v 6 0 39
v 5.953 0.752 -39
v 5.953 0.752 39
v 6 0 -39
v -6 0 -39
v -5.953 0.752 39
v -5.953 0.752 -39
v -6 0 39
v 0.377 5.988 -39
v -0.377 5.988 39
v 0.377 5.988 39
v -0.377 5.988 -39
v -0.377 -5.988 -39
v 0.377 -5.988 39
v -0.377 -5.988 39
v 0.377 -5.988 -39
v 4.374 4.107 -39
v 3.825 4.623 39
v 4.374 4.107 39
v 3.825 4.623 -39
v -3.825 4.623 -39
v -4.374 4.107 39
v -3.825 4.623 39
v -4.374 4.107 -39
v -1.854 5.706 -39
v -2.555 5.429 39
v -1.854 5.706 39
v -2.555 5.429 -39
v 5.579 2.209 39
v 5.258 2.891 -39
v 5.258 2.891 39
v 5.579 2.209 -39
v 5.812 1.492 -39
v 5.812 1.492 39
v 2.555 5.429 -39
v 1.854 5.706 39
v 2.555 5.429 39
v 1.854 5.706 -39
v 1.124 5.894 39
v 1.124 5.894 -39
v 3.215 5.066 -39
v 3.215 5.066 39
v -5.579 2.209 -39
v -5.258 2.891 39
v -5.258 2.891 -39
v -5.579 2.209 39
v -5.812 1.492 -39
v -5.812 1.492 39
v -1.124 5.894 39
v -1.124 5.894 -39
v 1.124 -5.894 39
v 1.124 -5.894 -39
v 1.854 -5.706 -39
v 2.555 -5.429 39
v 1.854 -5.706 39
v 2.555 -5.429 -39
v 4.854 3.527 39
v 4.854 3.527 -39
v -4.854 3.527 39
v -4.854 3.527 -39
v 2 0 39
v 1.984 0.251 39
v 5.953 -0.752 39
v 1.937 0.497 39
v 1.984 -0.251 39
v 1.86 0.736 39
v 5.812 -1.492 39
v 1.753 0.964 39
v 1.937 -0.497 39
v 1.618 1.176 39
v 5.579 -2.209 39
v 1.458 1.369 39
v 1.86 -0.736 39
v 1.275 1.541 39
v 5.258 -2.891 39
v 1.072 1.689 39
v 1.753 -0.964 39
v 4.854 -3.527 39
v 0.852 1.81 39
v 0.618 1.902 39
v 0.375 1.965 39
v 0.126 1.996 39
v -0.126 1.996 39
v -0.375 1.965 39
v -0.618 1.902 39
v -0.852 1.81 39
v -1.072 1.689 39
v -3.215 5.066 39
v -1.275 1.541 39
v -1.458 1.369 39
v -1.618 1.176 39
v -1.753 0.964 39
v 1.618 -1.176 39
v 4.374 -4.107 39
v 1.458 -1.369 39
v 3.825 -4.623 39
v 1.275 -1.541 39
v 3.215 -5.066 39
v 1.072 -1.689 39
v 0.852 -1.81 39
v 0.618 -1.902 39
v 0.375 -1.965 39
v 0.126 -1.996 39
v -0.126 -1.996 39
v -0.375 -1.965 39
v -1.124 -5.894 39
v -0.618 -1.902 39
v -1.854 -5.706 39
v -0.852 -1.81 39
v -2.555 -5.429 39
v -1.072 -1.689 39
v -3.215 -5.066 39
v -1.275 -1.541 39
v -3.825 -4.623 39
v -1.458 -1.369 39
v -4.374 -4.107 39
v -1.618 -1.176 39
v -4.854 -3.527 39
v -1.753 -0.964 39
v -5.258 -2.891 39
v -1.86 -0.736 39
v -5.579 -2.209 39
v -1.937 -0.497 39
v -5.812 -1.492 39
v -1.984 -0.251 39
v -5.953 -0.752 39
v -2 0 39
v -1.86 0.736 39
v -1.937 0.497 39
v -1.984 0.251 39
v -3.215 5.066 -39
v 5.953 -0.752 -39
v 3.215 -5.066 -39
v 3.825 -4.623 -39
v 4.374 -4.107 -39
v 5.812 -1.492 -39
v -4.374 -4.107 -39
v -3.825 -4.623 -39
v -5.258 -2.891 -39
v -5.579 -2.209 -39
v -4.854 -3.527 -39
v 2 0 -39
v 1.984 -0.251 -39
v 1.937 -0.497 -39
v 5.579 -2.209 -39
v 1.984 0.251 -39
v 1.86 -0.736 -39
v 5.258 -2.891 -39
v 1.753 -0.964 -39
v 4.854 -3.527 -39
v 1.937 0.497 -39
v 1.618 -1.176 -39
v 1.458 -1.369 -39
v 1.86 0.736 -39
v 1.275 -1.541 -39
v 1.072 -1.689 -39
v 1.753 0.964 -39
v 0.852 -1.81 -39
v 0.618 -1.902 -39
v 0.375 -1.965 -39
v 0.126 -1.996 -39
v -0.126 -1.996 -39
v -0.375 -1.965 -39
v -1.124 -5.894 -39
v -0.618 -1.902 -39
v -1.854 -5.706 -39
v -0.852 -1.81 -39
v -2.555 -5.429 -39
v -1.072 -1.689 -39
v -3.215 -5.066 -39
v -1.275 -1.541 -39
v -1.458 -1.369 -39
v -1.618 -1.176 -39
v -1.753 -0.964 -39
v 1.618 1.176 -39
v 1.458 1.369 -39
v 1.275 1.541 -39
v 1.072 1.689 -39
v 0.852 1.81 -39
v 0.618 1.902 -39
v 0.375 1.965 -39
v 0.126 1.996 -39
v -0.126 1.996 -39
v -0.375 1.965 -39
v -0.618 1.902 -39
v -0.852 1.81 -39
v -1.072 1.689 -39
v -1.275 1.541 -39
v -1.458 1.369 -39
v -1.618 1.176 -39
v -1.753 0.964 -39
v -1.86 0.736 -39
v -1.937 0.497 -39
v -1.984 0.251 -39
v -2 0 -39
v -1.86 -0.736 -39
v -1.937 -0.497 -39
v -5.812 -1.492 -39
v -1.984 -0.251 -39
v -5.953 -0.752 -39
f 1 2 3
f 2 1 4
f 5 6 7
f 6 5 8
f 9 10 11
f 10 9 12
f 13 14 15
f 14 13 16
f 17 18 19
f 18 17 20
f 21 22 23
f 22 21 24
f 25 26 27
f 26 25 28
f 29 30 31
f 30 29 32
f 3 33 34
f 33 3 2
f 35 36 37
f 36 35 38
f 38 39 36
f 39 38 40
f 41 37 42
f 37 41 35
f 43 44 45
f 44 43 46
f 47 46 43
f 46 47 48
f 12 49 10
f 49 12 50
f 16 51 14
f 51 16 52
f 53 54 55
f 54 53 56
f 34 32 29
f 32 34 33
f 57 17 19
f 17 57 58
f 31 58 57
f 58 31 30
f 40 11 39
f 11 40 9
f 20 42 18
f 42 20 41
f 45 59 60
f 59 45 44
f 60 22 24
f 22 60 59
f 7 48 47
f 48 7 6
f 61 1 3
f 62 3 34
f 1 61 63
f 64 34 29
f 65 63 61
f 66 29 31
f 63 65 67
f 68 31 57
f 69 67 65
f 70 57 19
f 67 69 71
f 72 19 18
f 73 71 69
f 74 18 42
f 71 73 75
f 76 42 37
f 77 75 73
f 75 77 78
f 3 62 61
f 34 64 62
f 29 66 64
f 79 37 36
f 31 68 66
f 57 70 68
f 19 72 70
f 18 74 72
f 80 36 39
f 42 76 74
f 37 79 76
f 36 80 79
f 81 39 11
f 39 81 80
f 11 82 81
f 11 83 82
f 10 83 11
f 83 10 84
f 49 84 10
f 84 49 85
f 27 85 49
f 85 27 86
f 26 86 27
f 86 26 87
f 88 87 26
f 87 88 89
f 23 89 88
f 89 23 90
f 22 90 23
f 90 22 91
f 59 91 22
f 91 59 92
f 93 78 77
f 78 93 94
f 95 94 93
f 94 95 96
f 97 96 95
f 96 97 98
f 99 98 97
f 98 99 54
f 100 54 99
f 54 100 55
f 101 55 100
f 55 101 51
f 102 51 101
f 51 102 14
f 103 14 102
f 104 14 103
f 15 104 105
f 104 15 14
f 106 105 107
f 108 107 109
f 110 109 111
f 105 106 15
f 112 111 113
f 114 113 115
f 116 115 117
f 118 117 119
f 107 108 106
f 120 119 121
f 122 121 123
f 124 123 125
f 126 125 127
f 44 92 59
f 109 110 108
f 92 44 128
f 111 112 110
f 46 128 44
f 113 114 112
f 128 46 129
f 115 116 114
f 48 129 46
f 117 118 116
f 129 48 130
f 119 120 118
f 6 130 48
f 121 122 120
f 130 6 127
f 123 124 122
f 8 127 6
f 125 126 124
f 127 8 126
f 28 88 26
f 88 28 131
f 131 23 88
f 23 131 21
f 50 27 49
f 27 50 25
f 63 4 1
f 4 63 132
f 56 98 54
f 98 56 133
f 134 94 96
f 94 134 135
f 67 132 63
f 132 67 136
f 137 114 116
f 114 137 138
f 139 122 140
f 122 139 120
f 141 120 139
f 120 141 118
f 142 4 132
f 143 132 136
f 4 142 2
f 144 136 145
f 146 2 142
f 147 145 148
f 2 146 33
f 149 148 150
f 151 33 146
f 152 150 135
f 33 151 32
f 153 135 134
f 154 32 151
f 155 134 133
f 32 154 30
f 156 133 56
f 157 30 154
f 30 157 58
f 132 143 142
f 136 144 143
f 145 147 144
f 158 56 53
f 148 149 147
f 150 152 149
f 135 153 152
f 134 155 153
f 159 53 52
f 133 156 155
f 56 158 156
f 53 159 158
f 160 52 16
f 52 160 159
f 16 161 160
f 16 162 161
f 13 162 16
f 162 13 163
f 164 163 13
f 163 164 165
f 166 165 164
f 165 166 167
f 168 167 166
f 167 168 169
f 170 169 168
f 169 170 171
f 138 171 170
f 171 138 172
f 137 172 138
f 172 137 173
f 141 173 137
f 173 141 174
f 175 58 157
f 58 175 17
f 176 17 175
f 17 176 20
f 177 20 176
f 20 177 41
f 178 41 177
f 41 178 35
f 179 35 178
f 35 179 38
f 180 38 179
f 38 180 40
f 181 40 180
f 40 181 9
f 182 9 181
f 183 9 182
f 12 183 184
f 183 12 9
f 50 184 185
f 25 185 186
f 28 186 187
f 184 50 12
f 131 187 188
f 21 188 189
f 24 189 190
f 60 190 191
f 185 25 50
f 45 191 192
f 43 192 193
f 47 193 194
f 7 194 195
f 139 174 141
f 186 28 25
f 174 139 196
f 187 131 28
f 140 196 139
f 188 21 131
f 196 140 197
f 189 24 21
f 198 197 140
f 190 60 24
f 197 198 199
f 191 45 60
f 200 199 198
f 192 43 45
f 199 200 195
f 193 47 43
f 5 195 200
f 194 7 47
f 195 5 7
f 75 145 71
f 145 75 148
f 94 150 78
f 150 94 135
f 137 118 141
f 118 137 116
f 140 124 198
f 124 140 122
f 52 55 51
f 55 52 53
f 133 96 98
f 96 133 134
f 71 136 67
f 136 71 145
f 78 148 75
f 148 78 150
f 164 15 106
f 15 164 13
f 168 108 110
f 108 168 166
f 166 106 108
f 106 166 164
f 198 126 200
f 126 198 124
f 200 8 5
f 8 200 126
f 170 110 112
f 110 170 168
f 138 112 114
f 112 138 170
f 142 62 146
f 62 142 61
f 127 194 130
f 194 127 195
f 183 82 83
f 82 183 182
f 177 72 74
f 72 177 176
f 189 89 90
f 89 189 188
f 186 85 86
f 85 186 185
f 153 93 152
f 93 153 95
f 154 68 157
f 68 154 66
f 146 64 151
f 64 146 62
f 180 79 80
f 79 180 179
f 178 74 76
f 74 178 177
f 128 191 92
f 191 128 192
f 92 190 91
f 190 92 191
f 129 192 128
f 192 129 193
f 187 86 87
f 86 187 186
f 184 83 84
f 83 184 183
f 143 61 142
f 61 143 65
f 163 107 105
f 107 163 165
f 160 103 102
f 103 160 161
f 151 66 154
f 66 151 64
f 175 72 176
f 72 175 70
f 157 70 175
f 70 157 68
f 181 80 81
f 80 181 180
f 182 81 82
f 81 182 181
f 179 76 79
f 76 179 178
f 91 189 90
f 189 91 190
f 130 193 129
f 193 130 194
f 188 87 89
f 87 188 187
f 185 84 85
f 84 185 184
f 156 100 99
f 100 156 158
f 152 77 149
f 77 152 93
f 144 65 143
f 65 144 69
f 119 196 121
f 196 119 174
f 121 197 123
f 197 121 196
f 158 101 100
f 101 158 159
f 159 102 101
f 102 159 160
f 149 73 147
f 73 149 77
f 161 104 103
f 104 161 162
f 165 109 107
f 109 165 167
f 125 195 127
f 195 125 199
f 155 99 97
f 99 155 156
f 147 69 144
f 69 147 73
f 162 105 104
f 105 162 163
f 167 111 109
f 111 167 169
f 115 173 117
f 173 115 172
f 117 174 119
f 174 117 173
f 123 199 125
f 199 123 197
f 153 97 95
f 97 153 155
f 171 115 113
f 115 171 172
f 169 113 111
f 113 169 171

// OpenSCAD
$fn = 50;


difference() {
	union() {
		translate(v = [0, 0, -39.0000000000]) {
			cylinder(h = 78, r = 6.0000000000);
		}
	}
	union() {
		translate(v = [0, 0, -100.0000000000]) {
			cylinder(h = 200, r = 2);
		}
	}
}
